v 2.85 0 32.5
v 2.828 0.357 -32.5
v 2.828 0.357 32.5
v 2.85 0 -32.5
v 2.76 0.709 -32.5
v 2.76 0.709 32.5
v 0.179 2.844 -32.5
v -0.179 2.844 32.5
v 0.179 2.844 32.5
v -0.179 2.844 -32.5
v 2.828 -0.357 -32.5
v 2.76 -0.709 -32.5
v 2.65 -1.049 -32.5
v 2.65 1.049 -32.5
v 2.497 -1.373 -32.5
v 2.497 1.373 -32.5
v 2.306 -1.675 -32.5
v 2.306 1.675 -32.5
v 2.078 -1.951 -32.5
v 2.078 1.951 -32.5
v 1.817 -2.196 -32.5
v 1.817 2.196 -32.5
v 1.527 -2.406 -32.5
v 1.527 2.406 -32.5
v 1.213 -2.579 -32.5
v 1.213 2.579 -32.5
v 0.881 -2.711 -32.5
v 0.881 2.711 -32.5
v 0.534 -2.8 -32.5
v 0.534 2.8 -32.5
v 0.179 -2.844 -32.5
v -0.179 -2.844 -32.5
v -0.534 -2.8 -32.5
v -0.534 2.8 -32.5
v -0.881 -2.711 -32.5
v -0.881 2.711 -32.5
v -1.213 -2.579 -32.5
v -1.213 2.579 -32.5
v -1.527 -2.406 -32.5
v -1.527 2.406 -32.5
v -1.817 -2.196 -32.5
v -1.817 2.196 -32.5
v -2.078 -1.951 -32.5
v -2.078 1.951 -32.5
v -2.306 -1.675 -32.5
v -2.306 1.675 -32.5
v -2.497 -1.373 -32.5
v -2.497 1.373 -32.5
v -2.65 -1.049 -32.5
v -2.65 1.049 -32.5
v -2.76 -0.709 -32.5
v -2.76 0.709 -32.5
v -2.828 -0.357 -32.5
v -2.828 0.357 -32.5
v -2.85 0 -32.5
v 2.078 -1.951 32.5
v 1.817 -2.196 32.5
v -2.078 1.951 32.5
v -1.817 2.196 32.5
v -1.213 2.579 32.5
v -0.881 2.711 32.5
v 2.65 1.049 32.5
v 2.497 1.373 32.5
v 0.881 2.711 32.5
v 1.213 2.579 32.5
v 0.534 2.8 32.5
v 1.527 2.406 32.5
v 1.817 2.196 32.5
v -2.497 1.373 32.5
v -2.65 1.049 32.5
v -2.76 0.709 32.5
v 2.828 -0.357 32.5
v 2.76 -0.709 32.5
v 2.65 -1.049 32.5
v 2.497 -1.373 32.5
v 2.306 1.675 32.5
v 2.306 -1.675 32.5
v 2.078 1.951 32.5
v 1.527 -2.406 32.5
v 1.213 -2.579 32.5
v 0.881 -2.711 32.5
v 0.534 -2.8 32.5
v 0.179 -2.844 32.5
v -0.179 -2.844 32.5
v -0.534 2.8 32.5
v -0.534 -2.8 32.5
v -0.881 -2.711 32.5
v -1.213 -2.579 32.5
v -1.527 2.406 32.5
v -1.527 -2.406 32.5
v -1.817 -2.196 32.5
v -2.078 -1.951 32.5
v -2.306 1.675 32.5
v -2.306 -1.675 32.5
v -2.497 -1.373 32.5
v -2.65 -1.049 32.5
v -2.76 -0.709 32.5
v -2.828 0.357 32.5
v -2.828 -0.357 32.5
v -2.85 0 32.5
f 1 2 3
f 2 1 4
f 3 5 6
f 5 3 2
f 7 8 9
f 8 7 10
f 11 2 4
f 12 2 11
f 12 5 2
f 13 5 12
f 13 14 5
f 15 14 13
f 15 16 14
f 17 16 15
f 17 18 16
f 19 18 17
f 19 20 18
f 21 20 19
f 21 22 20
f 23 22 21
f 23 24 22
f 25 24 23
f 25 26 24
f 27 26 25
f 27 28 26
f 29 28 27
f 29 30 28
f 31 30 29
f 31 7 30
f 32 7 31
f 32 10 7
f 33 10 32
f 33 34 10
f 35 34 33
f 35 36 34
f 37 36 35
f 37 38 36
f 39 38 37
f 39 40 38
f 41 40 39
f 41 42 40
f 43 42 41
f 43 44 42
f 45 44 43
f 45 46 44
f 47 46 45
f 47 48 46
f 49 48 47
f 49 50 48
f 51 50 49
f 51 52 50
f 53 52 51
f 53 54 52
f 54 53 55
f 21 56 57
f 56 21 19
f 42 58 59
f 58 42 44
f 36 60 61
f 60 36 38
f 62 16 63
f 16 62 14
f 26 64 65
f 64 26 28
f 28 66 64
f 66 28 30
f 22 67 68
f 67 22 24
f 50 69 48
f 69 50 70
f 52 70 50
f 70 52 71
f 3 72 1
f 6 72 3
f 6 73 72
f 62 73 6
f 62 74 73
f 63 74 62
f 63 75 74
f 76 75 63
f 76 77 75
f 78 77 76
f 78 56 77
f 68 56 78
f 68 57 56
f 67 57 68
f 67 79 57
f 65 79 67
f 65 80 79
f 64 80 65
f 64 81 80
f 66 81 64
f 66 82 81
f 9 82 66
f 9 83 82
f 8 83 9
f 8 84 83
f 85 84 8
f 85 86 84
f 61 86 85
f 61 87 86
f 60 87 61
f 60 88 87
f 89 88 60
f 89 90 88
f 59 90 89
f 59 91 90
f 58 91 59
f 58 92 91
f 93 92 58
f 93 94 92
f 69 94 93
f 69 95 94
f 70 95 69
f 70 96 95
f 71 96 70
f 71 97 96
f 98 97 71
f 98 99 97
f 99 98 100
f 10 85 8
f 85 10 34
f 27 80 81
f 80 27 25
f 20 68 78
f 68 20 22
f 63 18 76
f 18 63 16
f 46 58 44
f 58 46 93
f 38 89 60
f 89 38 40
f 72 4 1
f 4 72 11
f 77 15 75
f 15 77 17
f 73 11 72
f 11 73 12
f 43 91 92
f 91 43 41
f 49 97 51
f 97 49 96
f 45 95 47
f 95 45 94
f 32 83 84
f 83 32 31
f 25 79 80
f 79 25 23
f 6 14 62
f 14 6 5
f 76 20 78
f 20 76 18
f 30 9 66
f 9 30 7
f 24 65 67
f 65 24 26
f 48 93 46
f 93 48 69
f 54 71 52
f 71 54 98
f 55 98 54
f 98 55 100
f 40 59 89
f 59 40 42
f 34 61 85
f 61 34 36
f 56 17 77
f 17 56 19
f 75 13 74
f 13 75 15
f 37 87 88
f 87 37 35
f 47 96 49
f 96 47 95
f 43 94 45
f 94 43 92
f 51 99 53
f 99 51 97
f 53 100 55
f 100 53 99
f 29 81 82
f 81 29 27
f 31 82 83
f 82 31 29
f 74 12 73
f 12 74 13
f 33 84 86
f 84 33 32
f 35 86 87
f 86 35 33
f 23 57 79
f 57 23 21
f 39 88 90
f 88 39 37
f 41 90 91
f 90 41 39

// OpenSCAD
$fn = 50;


difference() {
	union() {
		translate(v = [0, 0, -32.5000000000]) {
			cylinder(h = 65, r = 2.8500000000);
		}
	}
	union() {
		translate(v = [0, 0, -100.0000000000]) {
			cylinder(h = 200, r = 0);
		}
	}
}
